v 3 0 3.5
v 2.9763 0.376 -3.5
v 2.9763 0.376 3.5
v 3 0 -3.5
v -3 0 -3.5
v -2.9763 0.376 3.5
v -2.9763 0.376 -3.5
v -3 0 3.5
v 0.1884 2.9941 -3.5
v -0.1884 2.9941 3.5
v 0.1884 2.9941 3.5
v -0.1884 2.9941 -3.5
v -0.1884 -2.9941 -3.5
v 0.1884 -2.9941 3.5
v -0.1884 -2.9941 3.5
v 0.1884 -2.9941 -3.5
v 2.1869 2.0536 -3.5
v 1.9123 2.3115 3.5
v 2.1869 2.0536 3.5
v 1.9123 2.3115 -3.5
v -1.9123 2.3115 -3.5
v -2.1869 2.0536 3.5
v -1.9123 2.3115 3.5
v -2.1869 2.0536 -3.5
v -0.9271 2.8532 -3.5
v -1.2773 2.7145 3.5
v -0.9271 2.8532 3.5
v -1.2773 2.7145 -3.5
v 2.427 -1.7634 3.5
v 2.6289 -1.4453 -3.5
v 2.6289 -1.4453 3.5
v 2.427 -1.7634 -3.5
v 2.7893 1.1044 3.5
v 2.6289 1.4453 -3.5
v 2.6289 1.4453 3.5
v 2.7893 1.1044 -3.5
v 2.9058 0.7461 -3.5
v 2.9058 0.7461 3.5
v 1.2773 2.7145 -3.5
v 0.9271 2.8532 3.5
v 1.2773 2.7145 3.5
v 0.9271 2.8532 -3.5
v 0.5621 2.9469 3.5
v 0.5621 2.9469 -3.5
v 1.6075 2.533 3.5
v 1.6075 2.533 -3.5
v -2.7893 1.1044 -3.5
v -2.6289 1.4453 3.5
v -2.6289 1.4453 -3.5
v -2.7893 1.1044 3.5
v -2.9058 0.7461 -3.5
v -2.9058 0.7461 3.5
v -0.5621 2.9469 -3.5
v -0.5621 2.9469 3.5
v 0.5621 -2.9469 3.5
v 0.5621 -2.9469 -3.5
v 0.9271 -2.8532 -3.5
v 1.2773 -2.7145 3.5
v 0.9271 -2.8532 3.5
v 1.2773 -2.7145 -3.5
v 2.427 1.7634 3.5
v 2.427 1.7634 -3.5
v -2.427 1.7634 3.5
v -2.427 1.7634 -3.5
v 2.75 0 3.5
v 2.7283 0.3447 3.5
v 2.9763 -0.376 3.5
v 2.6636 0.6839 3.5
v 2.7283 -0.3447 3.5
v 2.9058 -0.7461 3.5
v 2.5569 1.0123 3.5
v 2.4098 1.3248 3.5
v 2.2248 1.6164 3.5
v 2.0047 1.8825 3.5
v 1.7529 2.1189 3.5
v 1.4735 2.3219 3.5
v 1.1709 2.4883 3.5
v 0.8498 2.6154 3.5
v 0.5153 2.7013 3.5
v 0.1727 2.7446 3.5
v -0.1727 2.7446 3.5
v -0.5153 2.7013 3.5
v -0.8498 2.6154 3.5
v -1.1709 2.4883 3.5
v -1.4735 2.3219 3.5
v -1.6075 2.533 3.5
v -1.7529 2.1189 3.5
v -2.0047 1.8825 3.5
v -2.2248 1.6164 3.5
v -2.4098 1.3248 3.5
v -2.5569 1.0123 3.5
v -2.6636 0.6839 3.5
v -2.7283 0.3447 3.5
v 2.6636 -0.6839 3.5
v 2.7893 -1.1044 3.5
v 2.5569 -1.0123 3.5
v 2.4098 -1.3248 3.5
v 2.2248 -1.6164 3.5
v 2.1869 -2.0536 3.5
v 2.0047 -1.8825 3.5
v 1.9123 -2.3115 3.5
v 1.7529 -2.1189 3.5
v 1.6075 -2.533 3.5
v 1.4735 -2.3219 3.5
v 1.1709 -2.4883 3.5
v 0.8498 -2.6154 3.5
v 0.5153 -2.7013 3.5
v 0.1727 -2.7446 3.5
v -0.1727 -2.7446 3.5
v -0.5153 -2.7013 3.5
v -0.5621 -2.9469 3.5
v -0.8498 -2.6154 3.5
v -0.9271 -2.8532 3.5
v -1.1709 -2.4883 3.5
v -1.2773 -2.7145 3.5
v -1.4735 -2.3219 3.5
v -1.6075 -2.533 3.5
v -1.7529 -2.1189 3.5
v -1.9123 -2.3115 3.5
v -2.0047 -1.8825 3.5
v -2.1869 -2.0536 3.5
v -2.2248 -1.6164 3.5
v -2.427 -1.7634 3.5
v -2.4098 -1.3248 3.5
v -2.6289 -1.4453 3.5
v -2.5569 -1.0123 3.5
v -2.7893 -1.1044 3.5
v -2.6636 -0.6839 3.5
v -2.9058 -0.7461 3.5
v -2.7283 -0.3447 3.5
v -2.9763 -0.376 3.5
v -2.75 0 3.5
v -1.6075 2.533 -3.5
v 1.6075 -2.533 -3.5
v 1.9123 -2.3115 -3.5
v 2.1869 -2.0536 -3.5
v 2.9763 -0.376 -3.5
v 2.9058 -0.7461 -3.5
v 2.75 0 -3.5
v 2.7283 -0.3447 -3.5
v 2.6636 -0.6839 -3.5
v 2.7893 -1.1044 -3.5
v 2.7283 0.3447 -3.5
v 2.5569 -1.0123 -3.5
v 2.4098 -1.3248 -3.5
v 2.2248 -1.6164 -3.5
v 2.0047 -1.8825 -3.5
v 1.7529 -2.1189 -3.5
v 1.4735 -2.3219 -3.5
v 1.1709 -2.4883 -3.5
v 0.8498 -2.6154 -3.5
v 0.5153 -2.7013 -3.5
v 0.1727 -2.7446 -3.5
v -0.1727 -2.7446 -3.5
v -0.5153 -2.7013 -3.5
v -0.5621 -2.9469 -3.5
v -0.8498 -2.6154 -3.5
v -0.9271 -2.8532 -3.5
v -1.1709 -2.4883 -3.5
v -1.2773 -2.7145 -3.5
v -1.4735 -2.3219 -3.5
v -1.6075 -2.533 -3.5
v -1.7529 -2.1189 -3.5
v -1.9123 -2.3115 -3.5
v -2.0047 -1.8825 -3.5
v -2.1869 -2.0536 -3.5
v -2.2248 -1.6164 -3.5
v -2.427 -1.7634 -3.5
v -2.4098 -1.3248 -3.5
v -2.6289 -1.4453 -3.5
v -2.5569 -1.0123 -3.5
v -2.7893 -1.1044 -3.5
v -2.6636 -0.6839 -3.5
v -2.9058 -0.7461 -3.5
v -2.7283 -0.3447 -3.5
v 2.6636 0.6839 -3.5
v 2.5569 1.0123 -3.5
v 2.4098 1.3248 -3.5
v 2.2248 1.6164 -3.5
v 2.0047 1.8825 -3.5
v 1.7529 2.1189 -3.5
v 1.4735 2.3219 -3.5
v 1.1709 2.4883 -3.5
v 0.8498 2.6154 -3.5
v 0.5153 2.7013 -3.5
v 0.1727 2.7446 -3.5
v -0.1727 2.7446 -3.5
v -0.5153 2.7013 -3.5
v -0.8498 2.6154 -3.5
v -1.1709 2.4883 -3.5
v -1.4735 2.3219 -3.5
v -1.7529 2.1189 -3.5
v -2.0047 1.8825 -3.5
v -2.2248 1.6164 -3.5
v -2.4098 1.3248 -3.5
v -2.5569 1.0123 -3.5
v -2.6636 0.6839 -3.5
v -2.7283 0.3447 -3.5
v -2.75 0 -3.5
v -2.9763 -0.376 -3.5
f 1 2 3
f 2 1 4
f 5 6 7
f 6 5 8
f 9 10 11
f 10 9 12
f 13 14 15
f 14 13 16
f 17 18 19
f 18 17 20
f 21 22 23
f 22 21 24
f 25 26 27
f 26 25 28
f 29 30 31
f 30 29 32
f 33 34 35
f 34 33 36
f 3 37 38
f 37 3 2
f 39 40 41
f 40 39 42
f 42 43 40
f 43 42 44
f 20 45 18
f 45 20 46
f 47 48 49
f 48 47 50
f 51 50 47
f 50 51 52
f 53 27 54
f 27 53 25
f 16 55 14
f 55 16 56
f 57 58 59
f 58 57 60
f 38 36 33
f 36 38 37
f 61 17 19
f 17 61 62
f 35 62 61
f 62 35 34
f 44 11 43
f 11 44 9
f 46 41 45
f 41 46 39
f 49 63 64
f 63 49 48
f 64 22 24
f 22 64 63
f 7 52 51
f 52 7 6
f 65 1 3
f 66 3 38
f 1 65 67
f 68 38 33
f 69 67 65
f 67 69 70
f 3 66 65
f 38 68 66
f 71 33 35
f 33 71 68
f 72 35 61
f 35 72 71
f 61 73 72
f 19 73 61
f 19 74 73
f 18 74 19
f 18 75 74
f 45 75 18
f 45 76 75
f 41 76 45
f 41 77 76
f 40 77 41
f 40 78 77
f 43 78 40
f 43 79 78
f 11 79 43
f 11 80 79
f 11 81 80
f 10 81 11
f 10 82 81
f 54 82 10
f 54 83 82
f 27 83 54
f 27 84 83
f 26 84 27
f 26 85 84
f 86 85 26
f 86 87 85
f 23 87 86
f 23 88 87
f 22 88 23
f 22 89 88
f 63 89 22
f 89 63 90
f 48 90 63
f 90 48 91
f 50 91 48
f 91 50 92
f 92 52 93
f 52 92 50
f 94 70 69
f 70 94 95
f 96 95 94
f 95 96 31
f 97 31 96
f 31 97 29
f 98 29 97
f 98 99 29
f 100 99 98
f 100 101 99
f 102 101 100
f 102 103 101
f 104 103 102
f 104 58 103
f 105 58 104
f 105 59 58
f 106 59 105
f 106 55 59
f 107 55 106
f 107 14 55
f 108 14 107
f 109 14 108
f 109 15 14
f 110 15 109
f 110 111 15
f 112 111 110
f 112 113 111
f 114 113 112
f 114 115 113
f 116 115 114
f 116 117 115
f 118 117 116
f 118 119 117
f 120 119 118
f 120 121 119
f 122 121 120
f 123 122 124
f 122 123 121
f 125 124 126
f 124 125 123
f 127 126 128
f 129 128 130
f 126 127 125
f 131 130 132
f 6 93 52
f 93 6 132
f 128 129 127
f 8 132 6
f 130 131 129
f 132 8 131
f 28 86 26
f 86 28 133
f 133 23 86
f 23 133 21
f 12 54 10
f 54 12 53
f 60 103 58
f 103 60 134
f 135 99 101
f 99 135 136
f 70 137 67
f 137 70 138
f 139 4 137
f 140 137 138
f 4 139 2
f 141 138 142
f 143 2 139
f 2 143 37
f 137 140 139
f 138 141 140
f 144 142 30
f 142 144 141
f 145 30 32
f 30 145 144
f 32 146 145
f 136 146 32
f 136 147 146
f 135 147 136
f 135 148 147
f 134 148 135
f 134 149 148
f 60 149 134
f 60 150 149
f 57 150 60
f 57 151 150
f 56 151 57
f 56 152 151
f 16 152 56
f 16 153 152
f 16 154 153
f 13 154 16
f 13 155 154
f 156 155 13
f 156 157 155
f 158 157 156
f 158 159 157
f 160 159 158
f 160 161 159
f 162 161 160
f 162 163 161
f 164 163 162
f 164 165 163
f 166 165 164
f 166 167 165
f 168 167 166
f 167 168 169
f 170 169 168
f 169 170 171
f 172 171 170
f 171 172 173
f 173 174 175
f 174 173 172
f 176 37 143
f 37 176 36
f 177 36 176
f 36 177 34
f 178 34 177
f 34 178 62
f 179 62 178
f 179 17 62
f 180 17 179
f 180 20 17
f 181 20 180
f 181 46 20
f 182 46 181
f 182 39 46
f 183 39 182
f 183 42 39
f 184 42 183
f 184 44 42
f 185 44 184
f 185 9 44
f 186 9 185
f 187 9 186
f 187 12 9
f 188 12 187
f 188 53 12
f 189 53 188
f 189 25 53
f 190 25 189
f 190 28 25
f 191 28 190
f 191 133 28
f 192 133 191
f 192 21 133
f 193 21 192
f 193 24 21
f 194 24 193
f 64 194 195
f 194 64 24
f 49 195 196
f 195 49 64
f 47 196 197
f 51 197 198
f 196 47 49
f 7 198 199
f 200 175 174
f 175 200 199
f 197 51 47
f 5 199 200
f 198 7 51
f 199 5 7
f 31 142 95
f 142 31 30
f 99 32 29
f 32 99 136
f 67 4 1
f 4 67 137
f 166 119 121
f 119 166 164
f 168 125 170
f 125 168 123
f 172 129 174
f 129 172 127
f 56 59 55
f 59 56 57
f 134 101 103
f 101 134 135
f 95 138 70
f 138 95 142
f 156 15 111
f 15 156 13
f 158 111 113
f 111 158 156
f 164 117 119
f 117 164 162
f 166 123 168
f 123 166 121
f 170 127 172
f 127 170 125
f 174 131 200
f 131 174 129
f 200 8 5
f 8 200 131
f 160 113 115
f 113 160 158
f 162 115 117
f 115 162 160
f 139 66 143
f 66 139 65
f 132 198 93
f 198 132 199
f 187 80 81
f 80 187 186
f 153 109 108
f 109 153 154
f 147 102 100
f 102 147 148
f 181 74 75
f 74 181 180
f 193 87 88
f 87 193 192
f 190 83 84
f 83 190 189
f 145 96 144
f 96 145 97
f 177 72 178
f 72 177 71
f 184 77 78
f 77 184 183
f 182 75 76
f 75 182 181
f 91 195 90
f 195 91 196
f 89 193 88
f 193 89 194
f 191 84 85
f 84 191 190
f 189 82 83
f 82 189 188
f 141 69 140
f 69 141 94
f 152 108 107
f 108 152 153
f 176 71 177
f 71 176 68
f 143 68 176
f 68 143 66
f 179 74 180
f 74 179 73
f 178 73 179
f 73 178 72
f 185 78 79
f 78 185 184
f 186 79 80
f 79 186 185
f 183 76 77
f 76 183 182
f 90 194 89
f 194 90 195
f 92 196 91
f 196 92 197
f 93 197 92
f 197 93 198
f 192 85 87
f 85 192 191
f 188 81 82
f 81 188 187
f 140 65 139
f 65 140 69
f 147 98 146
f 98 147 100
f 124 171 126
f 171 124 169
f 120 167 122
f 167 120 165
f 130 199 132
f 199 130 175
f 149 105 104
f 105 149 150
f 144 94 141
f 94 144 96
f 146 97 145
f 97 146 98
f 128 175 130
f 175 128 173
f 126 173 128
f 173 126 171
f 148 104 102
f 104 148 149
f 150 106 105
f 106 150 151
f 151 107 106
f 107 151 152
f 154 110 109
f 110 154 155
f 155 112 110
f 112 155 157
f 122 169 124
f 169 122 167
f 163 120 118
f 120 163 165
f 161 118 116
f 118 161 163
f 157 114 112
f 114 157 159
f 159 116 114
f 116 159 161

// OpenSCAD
$fn = 50;


difference() {
	union() {
		translate(v = [0, 0, -3.5000000000]) {
			cylinder(h = 7, r = 3.0000000000);
		}
	}
	union() {
		translate(v = [0, 0, -100.0000000000]) {
			cylinder(h = 200, r = 2.7500000000);
		}
	}
}
